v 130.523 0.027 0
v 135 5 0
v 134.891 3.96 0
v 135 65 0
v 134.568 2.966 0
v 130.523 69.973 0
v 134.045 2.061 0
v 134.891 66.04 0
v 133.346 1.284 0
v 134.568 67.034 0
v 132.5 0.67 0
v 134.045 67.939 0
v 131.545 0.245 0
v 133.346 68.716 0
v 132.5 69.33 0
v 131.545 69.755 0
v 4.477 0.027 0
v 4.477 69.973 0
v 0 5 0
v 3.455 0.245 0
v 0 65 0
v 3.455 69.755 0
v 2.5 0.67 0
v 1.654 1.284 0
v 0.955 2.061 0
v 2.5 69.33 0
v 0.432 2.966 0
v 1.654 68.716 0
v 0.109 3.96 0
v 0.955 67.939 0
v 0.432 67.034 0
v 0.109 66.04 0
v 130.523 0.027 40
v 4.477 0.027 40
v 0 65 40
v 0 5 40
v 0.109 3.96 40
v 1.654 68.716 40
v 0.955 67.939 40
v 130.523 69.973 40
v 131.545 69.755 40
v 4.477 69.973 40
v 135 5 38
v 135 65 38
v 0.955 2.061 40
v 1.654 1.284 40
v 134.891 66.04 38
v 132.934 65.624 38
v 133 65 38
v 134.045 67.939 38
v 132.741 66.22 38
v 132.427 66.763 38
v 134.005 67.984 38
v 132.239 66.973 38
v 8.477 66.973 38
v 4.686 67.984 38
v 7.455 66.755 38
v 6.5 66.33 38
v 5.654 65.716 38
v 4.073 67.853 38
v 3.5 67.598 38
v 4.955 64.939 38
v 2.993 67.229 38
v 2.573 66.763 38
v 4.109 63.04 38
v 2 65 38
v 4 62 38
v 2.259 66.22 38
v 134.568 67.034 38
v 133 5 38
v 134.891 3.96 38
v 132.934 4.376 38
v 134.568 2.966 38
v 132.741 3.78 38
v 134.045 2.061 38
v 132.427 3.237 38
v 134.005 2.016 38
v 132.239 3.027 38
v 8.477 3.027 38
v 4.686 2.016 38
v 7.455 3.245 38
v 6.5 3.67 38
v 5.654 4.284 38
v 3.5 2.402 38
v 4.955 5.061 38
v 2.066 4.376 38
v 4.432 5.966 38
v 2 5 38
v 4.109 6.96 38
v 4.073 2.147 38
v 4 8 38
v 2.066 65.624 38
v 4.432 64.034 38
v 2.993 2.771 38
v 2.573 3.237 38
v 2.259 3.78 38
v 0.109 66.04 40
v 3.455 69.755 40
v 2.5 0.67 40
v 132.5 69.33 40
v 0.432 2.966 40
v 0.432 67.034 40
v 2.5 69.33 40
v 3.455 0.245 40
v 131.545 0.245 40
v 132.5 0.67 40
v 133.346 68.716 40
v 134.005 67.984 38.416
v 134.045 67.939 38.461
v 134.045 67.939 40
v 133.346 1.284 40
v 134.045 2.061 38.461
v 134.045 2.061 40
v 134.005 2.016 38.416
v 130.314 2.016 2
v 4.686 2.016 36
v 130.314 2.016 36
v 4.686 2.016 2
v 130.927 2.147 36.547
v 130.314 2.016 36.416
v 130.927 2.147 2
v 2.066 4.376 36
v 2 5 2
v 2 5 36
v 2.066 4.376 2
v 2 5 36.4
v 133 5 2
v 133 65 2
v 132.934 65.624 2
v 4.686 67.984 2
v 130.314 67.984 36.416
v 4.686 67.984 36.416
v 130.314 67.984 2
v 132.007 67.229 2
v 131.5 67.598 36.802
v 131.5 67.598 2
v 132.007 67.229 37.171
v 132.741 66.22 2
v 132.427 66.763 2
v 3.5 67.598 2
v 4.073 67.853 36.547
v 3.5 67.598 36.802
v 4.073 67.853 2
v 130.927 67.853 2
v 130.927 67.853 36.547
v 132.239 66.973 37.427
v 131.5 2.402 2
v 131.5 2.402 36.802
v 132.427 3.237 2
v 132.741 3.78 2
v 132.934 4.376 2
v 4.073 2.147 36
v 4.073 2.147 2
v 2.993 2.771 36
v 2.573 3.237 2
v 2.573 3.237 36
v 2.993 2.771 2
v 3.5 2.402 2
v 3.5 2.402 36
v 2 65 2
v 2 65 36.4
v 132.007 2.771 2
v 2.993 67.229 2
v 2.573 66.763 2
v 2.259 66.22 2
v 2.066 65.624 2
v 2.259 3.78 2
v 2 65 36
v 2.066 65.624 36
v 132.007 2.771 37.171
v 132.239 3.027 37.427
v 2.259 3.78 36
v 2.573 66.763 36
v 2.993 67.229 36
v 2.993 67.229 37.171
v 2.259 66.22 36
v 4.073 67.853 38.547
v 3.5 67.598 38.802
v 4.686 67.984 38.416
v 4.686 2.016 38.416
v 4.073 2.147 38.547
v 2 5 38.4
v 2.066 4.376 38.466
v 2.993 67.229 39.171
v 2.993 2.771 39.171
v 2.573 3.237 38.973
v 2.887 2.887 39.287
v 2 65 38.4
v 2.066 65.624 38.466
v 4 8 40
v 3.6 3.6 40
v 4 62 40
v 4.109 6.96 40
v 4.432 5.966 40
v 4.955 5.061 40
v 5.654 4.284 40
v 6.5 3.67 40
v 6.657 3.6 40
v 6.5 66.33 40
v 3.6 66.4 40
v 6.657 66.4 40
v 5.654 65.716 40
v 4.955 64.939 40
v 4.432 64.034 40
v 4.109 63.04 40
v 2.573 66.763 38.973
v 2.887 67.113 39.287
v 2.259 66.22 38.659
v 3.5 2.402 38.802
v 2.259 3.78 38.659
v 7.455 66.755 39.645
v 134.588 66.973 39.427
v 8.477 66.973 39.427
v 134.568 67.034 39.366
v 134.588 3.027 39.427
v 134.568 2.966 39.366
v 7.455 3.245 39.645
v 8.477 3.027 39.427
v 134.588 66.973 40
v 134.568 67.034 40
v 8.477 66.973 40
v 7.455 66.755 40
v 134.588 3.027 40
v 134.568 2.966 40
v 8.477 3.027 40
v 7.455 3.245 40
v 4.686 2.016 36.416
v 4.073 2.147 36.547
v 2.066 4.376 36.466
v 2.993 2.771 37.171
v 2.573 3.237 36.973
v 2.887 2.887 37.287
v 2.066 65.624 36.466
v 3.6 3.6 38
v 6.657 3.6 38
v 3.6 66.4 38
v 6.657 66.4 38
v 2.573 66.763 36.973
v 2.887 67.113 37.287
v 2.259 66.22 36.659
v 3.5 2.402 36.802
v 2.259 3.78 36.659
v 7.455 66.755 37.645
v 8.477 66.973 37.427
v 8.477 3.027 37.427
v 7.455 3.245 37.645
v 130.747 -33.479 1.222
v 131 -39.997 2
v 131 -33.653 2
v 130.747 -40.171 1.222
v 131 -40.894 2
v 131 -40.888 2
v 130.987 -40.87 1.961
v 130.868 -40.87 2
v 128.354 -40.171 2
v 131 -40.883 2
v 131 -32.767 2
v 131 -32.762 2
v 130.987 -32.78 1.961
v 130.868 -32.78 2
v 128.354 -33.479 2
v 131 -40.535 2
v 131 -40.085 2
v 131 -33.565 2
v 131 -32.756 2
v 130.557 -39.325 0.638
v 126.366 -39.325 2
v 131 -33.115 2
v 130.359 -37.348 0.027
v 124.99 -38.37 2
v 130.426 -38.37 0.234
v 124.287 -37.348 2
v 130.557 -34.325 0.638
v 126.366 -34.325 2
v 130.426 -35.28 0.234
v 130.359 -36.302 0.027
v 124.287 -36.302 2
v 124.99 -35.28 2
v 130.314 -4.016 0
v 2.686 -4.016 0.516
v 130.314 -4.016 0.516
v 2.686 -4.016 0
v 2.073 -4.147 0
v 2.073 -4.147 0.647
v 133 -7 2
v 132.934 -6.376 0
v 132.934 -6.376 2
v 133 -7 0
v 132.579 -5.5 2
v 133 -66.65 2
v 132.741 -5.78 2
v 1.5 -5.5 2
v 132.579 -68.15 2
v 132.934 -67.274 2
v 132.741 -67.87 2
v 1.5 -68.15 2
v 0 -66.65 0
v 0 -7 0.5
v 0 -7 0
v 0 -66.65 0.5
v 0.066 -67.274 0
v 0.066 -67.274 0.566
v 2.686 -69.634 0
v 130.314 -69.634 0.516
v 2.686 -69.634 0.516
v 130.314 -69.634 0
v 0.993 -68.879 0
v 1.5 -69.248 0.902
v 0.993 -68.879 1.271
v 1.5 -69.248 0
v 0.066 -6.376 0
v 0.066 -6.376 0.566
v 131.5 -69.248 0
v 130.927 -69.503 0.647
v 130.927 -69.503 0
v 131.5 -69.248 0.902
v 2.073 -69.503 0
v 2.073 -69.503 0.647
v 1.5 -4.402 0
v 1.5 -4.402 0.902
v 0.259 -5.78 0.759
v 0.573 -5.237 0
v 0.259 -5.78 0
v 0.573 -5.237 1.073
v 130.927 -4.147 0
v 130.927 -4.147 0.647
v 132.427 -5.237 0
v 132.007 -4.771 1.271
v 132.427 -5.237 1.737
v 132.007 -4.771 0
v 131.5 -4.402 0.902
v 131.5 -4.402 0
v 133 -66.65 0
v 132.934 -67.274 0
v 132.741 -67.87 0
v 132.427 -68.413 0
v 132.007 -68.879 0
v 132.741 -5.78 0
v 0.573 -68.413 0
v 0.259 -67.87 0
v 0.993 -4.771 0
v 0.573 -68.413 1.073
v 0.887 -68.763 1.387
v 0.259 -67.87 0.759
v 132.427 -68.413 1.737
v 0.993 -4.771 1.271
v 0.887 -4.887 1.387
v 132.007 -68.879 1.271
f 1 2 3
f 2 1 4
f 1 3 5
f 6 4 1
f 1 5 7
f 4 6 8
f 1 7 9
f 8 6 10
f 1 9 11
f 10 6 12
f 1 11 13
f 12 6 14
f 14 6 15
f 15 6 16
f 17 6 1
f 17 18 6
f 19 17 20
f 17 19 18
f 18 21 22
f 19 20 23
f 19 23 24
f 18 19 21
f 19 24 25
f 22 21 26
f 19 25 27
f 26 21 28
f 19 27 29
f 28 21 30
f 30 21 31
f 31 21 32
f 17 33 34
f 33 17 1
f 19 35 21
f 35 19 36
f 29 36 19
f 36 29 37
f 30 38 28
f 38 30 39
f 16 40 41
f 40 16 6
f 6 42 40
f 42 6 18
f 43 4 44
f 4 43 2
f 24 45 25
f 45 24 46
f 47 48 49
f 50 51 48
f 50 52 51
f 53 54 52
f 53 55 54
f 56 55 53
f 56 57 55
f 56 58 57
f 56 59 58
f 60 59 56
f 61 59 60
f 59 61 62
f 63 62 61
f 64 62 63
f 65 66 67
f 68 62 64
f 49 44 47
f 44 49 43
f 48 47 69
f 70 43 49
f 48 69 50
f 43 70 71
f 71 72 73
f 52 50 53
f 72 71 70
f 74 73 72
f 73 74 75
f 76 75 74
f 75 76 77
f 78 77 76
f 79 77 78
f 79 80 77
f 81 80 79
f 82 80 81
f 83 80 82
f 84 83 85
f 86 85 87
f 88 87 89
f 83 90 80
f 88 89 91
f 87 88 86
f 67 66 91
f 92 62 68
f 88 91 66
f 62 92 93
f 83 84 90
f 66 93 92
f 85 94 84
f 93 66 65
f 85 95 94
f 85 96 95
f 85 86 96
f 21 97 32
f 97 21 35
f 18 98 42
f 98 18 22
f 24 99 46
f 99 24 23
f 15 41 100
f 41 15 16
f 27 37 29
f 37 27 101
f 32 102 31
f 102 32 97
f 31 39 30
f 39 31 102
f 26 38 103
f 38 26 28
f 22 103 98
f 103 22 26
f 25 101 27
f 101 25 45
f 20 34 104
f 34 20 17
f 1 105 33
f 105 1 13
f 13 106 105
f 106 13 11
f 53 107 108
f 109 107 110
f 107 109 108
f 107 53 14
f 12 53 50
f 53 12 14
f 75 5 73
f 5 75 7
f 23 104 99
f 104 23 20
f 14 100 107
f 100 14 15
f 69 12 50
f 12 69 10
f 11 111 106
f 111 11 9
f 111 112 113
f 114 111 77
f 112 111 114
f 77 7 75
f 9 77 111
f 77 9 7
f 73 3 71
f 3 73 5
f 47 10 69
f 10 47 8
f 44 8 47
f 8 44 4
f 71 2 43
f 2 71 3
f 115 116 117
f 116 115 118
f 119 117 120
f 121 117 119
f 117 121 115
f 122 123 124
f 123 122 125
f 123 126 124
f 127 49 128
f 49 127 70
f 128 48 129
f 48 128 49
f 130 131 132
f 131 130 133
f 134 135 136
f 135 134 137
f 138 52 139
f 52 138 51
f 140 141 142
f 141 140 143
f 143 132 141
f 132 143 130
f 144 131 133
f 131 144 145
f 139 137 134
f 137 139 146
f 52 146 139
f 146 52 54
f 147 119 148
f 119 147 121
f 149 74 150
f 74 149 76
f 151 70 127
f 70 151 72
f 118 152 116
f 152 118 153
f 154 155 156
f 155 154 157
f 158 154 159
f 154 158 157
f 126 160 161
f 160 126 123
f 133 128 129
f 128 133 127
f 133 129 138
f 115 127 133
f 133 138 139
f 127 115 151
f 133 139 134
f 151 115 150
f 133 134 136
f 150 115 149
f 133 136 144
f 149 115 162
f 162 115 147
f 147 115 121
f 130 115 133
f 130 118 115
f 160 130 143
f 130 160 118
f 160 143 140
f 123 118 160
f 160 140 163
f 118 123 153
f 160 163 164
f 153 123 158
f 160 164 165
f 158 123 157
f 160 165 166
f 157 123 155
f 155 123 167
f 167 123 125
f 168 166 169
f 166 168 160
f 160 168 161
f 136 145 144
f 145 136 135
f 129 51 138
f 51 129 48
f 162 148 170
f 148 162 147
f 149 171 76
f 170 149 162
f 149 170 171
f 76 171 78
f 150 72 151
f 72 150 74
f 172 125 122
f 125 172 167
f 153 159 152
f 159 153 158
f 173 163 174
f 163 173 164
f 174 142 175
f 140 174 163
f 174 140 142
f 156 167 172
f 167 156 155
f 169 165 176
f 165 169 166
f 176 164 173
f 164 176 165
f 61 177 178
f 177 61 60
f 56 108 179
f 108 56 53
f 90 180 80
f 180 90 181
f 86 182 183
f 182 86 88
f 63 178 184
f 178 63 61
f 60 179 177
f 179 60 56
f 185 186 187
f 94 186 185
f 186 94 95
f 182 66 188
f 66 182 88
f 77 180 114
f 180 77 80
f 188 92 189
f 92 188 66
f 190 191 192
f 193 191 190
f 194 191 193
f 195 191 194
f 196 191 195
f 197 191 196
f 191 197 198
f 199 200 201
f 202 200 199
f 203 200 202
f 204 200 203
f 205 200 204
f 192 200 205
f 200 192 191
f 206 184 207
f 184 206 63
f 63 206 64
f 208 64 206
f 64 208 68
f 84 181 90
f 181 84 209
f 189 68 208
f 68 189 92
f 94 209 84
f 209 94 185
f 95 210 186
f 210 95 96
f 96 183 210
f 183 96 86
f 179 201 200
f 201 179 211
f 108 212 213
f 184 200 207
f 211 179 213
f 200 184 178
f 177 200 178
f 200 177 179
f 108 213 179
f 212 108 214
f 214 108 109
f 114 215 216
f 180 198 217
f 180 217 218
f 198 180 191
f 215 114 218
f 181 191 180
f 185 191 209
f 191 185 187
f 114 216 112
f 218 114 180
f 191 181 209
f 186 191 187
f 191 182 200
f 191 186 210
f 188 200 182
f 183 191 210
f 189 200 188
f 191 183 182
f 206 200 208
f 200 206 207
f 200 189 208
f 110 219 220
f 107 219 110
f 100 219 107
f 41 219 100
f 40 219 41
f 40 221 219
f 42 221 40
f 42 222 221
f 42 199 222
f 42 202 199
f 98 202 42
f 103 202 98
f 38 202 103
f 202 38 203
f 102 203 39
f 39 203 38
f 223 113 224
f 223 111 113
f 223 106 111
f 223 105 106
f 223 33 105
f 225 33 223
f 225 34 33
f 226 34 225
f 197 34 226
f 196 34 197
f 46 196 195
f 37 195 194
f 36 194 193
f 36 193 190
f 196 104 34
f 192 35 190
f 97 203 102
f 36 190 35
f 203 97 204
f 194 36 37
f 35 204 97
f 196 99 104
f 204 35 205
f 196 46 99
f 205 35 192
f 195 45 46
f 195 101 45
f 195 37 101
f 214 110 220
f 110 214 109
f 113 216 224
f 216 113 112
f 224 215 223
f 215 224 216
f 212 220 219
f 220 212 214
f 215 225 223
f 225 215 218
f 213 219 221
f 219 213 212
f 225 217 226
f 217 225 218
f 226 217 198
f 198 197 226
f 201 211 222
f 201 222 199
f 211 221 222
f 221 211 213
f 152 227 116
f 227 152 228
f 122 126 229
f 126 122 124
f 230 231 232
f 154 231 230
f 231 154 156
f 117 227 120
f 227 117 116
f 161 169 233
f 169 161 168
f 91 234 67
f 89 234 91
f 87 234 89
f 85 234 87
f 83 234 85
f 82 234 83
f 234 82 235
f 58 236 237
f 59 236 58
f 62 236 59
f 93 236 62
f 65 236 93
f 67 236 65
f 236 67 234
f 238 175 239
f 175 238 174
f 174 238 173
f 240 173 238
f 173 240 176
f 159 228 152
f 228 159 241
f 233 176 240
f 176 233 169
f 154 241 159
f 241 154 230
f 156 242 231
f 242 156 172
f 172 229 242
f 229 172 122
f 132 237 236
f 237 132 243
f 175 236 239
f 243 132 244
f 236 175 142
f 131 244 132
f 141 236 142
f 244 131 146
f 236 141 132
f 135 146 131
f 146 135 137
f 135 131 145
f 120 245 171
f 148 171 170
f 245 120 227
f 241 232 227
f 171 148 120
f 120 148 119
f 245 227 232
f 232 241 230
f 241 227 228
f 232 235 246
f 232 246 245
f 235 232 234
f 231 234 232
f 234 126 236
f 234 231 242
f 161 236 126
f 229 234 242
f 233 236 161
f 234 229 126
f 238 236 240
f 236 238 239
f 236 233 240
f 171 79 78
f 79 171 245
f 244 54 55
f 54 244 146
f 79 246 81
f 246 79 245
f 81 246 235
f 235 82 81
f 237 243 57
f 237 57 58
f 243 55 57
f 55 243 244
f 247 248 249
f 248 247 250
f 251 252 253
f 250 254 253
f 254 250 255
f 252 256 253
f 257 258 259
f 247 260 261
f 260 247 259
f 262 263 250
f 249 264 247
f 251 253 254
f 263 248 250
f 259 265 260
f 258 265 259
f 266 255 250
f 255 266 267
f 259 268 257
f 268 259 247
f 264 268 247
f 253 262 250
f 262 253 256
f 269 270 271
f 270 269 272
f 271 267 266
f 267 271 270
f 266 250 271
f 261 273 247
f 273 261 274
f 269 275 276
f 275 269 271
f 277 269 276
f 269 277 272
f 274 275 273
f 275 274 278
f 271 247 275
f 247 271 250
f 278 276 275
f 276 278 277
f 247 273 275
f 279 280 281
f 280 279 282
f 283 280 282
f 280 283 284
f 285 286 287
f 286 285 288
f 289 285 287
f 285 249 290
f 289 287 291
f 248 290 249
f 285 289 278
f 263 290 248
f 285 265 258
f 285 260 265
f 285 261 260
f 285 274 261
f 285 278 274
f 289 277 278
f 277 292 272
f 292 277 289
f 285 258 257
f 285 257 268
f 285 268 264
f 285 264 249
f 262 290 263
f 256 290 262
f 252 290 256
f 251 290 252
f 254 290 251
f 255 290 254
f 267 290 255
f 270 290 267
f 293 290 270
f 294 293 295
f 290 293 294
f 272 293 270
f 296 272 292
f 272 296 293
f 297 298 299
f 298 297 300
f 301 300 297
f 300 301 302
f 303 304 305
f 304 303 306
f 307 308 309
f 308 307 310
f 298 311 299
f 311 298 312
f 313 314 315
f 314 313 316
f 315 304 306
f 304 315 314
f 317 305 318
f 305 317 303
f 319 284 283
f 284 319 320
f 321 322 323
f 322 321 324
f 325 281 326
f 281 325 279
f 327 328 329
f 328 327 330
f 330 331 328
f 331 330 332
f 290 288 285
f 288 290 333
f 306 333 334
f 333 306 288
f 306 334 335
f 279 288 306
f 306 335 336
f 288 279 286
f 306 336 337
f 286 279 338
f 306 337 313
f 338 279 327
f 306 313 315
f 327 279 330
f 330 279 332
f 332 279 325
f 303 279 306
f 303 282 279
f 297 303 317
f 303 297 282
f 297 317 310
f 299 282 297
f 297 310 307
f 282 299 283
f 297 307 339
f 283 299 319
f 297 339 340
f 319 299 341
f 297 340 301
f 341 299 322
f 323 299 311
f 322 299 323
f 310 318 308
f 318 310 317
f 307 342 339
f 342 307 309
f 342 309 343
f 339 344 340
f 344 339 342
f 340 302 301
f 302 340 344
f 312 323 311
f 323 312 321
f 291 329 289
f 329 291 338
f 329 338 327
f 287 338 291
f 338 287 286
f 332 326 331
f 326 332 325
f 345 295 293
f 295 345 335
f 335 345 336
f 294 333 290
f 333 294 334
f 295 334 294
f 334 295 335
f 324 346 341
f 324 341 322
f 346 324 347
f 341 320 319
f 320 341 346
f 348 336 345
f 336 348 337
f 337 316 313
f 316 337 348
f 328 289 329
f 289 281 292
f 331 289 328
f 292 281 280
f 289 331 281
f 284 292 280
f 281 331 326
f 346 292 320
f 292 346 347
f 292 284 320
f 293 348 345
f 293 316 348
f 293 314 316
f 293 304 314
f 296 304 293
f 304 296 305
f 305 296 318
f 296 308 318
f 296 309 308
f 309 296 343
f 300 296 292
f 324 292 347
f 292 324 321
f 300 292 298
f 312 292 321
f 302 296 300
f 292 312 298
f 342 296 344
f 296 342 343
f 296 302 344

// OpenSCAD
itemsShown="both"; // [both,box,lid]
boxLength=135;
boxWidth=70;
boxHeight=40;
cornerRadius=5;
wallThickness=2;
bottomThickness=2;
lidThickness=2;
lidClearance=0.35;
lidEdgeThickness=0.5;
// Notch in the lid
withNotch=true;//true;//[true:false]

/* [Global] */
if (itemsShown=="box") showBox();
if (itemsShown=="lid") showLid();
if (itemsShown=="both"){showBox();showLid();}

module showLid(){
	translate ([0, -2*wallThickness, 0]) 
	roundBoxLid(l=boxLength-wallThickness,
				w=boxWidth-2*wallThickness-lidClearance,
				h=lidThickness,
				et=lidEdgeThickness,
				r=cornerRadius-wallThickness,
				notch=withNotch);
}

module showBox(){
	round_box(l=boxLength,
			  w=boxWidth,
			  h=boxHeight,
			  bt=bottomThickness,
			  wt=wallThickness,
			  lt=lidThickness,
			  r=cornerRadius);
}

module round_box(l=40,w=30,h=30,bt=2,wt=2,lt=2,r=5,){
	difference() { 
		round_cube(l=l,w=w,h=h-lt,r=r);
		translate ([wt, wt, bt]) 
		round_cube(l=l-wt*2,w=w-wt*2,h=h,r=r-wt);
	}
	//use two box rims. one to make a slope to support the lid
	roundBoxRim();
	translate ([0, 0, -wt]) roundBoxRim();
}

module roundBoxRim(l=boxLength,
				   w=boxWidth,
				   h=boxHeight,
				   et=lidEdgeThickness,
				   r=cornerRadius,
				   wt=wallThickness,
				   lt=lidThickness){
	difference() { 
		translate ([0, 0, h-lt]) 
		round_cube(l=l,w=w,h=lt,r=r);
		translate ([wt+lt,wt+lt-et*2,h-lt-0.1]) 
		round_cube(l=l*2,w=w-2*(wt+lt)+4*et,h=lt+0.2,r=r-wt+lt);

		//subtract out a lid to make the ledge
		translate ([wt, w-wt, h-lt-0.1])
		roundBoxLid(l=l*2,w=w-2*wt,h=lt+0.1,wt=wt,t=lt,et=0.5,r=r-wt,notch=false);
	}
}

module roundBoxLid(l=40,w=30,h=3,wt=2,t=2,et=0.5,r=5,notch=true){
	translate ([l, 0, 0]) 
	rotate (a = [0, 0, 180]) 
	difference(){
		round_cube(l=l,w=w,h=h,t=t,r=r);

		translate ([-1, 0, et]) rotate (a = [45, 0, 0])  cube (size = [l+2, h*2, h*2]); 
		translate ([-1, w, et]) rotate (a = [45, 0, 0])  cube (size = [l+2, h*2, h*2]); 
		translate ([l, -1, et]) rotate (a = [45, 0, 90]) cube (size = [w+2, h*2, h*2]); 
		if (notch==true){
			translate([2,w/2,h+0.001]) thumbNotch(10/2,72,t);
		}
	}
}

module thumbNotch(
	thumbR=12/2,
	angle=72,
	notchHeight=2){

	size=10*thumbR;

	rotate([0,0,90])
	difference(){
		translate([0,
					(thumbR*sin(angle)-notchHeight)/tan(angle),
					 thumbR*sin(angle)-notchHeight])
		rotate([angle,0,0])
		cylinder(r=thumbR,h=size,$fn=30);

		translate([-size,-size,0])
		cube(size*2);
	}
}

module round_cube(l=40,w=30,h=20,r=5,$fn=30){
	hull(){ 
		translate ([r, r, 0]) cylinder (h = h, r=r);
		translate ([r, w-r, 0]) cylinder (h = h, r=r);
		translate ([l-r,w-r, 0]) cylinder (h = h, r=r);
		translate ([l-r, r, 0]) cylinder (h = h, r=r);
	}
}
